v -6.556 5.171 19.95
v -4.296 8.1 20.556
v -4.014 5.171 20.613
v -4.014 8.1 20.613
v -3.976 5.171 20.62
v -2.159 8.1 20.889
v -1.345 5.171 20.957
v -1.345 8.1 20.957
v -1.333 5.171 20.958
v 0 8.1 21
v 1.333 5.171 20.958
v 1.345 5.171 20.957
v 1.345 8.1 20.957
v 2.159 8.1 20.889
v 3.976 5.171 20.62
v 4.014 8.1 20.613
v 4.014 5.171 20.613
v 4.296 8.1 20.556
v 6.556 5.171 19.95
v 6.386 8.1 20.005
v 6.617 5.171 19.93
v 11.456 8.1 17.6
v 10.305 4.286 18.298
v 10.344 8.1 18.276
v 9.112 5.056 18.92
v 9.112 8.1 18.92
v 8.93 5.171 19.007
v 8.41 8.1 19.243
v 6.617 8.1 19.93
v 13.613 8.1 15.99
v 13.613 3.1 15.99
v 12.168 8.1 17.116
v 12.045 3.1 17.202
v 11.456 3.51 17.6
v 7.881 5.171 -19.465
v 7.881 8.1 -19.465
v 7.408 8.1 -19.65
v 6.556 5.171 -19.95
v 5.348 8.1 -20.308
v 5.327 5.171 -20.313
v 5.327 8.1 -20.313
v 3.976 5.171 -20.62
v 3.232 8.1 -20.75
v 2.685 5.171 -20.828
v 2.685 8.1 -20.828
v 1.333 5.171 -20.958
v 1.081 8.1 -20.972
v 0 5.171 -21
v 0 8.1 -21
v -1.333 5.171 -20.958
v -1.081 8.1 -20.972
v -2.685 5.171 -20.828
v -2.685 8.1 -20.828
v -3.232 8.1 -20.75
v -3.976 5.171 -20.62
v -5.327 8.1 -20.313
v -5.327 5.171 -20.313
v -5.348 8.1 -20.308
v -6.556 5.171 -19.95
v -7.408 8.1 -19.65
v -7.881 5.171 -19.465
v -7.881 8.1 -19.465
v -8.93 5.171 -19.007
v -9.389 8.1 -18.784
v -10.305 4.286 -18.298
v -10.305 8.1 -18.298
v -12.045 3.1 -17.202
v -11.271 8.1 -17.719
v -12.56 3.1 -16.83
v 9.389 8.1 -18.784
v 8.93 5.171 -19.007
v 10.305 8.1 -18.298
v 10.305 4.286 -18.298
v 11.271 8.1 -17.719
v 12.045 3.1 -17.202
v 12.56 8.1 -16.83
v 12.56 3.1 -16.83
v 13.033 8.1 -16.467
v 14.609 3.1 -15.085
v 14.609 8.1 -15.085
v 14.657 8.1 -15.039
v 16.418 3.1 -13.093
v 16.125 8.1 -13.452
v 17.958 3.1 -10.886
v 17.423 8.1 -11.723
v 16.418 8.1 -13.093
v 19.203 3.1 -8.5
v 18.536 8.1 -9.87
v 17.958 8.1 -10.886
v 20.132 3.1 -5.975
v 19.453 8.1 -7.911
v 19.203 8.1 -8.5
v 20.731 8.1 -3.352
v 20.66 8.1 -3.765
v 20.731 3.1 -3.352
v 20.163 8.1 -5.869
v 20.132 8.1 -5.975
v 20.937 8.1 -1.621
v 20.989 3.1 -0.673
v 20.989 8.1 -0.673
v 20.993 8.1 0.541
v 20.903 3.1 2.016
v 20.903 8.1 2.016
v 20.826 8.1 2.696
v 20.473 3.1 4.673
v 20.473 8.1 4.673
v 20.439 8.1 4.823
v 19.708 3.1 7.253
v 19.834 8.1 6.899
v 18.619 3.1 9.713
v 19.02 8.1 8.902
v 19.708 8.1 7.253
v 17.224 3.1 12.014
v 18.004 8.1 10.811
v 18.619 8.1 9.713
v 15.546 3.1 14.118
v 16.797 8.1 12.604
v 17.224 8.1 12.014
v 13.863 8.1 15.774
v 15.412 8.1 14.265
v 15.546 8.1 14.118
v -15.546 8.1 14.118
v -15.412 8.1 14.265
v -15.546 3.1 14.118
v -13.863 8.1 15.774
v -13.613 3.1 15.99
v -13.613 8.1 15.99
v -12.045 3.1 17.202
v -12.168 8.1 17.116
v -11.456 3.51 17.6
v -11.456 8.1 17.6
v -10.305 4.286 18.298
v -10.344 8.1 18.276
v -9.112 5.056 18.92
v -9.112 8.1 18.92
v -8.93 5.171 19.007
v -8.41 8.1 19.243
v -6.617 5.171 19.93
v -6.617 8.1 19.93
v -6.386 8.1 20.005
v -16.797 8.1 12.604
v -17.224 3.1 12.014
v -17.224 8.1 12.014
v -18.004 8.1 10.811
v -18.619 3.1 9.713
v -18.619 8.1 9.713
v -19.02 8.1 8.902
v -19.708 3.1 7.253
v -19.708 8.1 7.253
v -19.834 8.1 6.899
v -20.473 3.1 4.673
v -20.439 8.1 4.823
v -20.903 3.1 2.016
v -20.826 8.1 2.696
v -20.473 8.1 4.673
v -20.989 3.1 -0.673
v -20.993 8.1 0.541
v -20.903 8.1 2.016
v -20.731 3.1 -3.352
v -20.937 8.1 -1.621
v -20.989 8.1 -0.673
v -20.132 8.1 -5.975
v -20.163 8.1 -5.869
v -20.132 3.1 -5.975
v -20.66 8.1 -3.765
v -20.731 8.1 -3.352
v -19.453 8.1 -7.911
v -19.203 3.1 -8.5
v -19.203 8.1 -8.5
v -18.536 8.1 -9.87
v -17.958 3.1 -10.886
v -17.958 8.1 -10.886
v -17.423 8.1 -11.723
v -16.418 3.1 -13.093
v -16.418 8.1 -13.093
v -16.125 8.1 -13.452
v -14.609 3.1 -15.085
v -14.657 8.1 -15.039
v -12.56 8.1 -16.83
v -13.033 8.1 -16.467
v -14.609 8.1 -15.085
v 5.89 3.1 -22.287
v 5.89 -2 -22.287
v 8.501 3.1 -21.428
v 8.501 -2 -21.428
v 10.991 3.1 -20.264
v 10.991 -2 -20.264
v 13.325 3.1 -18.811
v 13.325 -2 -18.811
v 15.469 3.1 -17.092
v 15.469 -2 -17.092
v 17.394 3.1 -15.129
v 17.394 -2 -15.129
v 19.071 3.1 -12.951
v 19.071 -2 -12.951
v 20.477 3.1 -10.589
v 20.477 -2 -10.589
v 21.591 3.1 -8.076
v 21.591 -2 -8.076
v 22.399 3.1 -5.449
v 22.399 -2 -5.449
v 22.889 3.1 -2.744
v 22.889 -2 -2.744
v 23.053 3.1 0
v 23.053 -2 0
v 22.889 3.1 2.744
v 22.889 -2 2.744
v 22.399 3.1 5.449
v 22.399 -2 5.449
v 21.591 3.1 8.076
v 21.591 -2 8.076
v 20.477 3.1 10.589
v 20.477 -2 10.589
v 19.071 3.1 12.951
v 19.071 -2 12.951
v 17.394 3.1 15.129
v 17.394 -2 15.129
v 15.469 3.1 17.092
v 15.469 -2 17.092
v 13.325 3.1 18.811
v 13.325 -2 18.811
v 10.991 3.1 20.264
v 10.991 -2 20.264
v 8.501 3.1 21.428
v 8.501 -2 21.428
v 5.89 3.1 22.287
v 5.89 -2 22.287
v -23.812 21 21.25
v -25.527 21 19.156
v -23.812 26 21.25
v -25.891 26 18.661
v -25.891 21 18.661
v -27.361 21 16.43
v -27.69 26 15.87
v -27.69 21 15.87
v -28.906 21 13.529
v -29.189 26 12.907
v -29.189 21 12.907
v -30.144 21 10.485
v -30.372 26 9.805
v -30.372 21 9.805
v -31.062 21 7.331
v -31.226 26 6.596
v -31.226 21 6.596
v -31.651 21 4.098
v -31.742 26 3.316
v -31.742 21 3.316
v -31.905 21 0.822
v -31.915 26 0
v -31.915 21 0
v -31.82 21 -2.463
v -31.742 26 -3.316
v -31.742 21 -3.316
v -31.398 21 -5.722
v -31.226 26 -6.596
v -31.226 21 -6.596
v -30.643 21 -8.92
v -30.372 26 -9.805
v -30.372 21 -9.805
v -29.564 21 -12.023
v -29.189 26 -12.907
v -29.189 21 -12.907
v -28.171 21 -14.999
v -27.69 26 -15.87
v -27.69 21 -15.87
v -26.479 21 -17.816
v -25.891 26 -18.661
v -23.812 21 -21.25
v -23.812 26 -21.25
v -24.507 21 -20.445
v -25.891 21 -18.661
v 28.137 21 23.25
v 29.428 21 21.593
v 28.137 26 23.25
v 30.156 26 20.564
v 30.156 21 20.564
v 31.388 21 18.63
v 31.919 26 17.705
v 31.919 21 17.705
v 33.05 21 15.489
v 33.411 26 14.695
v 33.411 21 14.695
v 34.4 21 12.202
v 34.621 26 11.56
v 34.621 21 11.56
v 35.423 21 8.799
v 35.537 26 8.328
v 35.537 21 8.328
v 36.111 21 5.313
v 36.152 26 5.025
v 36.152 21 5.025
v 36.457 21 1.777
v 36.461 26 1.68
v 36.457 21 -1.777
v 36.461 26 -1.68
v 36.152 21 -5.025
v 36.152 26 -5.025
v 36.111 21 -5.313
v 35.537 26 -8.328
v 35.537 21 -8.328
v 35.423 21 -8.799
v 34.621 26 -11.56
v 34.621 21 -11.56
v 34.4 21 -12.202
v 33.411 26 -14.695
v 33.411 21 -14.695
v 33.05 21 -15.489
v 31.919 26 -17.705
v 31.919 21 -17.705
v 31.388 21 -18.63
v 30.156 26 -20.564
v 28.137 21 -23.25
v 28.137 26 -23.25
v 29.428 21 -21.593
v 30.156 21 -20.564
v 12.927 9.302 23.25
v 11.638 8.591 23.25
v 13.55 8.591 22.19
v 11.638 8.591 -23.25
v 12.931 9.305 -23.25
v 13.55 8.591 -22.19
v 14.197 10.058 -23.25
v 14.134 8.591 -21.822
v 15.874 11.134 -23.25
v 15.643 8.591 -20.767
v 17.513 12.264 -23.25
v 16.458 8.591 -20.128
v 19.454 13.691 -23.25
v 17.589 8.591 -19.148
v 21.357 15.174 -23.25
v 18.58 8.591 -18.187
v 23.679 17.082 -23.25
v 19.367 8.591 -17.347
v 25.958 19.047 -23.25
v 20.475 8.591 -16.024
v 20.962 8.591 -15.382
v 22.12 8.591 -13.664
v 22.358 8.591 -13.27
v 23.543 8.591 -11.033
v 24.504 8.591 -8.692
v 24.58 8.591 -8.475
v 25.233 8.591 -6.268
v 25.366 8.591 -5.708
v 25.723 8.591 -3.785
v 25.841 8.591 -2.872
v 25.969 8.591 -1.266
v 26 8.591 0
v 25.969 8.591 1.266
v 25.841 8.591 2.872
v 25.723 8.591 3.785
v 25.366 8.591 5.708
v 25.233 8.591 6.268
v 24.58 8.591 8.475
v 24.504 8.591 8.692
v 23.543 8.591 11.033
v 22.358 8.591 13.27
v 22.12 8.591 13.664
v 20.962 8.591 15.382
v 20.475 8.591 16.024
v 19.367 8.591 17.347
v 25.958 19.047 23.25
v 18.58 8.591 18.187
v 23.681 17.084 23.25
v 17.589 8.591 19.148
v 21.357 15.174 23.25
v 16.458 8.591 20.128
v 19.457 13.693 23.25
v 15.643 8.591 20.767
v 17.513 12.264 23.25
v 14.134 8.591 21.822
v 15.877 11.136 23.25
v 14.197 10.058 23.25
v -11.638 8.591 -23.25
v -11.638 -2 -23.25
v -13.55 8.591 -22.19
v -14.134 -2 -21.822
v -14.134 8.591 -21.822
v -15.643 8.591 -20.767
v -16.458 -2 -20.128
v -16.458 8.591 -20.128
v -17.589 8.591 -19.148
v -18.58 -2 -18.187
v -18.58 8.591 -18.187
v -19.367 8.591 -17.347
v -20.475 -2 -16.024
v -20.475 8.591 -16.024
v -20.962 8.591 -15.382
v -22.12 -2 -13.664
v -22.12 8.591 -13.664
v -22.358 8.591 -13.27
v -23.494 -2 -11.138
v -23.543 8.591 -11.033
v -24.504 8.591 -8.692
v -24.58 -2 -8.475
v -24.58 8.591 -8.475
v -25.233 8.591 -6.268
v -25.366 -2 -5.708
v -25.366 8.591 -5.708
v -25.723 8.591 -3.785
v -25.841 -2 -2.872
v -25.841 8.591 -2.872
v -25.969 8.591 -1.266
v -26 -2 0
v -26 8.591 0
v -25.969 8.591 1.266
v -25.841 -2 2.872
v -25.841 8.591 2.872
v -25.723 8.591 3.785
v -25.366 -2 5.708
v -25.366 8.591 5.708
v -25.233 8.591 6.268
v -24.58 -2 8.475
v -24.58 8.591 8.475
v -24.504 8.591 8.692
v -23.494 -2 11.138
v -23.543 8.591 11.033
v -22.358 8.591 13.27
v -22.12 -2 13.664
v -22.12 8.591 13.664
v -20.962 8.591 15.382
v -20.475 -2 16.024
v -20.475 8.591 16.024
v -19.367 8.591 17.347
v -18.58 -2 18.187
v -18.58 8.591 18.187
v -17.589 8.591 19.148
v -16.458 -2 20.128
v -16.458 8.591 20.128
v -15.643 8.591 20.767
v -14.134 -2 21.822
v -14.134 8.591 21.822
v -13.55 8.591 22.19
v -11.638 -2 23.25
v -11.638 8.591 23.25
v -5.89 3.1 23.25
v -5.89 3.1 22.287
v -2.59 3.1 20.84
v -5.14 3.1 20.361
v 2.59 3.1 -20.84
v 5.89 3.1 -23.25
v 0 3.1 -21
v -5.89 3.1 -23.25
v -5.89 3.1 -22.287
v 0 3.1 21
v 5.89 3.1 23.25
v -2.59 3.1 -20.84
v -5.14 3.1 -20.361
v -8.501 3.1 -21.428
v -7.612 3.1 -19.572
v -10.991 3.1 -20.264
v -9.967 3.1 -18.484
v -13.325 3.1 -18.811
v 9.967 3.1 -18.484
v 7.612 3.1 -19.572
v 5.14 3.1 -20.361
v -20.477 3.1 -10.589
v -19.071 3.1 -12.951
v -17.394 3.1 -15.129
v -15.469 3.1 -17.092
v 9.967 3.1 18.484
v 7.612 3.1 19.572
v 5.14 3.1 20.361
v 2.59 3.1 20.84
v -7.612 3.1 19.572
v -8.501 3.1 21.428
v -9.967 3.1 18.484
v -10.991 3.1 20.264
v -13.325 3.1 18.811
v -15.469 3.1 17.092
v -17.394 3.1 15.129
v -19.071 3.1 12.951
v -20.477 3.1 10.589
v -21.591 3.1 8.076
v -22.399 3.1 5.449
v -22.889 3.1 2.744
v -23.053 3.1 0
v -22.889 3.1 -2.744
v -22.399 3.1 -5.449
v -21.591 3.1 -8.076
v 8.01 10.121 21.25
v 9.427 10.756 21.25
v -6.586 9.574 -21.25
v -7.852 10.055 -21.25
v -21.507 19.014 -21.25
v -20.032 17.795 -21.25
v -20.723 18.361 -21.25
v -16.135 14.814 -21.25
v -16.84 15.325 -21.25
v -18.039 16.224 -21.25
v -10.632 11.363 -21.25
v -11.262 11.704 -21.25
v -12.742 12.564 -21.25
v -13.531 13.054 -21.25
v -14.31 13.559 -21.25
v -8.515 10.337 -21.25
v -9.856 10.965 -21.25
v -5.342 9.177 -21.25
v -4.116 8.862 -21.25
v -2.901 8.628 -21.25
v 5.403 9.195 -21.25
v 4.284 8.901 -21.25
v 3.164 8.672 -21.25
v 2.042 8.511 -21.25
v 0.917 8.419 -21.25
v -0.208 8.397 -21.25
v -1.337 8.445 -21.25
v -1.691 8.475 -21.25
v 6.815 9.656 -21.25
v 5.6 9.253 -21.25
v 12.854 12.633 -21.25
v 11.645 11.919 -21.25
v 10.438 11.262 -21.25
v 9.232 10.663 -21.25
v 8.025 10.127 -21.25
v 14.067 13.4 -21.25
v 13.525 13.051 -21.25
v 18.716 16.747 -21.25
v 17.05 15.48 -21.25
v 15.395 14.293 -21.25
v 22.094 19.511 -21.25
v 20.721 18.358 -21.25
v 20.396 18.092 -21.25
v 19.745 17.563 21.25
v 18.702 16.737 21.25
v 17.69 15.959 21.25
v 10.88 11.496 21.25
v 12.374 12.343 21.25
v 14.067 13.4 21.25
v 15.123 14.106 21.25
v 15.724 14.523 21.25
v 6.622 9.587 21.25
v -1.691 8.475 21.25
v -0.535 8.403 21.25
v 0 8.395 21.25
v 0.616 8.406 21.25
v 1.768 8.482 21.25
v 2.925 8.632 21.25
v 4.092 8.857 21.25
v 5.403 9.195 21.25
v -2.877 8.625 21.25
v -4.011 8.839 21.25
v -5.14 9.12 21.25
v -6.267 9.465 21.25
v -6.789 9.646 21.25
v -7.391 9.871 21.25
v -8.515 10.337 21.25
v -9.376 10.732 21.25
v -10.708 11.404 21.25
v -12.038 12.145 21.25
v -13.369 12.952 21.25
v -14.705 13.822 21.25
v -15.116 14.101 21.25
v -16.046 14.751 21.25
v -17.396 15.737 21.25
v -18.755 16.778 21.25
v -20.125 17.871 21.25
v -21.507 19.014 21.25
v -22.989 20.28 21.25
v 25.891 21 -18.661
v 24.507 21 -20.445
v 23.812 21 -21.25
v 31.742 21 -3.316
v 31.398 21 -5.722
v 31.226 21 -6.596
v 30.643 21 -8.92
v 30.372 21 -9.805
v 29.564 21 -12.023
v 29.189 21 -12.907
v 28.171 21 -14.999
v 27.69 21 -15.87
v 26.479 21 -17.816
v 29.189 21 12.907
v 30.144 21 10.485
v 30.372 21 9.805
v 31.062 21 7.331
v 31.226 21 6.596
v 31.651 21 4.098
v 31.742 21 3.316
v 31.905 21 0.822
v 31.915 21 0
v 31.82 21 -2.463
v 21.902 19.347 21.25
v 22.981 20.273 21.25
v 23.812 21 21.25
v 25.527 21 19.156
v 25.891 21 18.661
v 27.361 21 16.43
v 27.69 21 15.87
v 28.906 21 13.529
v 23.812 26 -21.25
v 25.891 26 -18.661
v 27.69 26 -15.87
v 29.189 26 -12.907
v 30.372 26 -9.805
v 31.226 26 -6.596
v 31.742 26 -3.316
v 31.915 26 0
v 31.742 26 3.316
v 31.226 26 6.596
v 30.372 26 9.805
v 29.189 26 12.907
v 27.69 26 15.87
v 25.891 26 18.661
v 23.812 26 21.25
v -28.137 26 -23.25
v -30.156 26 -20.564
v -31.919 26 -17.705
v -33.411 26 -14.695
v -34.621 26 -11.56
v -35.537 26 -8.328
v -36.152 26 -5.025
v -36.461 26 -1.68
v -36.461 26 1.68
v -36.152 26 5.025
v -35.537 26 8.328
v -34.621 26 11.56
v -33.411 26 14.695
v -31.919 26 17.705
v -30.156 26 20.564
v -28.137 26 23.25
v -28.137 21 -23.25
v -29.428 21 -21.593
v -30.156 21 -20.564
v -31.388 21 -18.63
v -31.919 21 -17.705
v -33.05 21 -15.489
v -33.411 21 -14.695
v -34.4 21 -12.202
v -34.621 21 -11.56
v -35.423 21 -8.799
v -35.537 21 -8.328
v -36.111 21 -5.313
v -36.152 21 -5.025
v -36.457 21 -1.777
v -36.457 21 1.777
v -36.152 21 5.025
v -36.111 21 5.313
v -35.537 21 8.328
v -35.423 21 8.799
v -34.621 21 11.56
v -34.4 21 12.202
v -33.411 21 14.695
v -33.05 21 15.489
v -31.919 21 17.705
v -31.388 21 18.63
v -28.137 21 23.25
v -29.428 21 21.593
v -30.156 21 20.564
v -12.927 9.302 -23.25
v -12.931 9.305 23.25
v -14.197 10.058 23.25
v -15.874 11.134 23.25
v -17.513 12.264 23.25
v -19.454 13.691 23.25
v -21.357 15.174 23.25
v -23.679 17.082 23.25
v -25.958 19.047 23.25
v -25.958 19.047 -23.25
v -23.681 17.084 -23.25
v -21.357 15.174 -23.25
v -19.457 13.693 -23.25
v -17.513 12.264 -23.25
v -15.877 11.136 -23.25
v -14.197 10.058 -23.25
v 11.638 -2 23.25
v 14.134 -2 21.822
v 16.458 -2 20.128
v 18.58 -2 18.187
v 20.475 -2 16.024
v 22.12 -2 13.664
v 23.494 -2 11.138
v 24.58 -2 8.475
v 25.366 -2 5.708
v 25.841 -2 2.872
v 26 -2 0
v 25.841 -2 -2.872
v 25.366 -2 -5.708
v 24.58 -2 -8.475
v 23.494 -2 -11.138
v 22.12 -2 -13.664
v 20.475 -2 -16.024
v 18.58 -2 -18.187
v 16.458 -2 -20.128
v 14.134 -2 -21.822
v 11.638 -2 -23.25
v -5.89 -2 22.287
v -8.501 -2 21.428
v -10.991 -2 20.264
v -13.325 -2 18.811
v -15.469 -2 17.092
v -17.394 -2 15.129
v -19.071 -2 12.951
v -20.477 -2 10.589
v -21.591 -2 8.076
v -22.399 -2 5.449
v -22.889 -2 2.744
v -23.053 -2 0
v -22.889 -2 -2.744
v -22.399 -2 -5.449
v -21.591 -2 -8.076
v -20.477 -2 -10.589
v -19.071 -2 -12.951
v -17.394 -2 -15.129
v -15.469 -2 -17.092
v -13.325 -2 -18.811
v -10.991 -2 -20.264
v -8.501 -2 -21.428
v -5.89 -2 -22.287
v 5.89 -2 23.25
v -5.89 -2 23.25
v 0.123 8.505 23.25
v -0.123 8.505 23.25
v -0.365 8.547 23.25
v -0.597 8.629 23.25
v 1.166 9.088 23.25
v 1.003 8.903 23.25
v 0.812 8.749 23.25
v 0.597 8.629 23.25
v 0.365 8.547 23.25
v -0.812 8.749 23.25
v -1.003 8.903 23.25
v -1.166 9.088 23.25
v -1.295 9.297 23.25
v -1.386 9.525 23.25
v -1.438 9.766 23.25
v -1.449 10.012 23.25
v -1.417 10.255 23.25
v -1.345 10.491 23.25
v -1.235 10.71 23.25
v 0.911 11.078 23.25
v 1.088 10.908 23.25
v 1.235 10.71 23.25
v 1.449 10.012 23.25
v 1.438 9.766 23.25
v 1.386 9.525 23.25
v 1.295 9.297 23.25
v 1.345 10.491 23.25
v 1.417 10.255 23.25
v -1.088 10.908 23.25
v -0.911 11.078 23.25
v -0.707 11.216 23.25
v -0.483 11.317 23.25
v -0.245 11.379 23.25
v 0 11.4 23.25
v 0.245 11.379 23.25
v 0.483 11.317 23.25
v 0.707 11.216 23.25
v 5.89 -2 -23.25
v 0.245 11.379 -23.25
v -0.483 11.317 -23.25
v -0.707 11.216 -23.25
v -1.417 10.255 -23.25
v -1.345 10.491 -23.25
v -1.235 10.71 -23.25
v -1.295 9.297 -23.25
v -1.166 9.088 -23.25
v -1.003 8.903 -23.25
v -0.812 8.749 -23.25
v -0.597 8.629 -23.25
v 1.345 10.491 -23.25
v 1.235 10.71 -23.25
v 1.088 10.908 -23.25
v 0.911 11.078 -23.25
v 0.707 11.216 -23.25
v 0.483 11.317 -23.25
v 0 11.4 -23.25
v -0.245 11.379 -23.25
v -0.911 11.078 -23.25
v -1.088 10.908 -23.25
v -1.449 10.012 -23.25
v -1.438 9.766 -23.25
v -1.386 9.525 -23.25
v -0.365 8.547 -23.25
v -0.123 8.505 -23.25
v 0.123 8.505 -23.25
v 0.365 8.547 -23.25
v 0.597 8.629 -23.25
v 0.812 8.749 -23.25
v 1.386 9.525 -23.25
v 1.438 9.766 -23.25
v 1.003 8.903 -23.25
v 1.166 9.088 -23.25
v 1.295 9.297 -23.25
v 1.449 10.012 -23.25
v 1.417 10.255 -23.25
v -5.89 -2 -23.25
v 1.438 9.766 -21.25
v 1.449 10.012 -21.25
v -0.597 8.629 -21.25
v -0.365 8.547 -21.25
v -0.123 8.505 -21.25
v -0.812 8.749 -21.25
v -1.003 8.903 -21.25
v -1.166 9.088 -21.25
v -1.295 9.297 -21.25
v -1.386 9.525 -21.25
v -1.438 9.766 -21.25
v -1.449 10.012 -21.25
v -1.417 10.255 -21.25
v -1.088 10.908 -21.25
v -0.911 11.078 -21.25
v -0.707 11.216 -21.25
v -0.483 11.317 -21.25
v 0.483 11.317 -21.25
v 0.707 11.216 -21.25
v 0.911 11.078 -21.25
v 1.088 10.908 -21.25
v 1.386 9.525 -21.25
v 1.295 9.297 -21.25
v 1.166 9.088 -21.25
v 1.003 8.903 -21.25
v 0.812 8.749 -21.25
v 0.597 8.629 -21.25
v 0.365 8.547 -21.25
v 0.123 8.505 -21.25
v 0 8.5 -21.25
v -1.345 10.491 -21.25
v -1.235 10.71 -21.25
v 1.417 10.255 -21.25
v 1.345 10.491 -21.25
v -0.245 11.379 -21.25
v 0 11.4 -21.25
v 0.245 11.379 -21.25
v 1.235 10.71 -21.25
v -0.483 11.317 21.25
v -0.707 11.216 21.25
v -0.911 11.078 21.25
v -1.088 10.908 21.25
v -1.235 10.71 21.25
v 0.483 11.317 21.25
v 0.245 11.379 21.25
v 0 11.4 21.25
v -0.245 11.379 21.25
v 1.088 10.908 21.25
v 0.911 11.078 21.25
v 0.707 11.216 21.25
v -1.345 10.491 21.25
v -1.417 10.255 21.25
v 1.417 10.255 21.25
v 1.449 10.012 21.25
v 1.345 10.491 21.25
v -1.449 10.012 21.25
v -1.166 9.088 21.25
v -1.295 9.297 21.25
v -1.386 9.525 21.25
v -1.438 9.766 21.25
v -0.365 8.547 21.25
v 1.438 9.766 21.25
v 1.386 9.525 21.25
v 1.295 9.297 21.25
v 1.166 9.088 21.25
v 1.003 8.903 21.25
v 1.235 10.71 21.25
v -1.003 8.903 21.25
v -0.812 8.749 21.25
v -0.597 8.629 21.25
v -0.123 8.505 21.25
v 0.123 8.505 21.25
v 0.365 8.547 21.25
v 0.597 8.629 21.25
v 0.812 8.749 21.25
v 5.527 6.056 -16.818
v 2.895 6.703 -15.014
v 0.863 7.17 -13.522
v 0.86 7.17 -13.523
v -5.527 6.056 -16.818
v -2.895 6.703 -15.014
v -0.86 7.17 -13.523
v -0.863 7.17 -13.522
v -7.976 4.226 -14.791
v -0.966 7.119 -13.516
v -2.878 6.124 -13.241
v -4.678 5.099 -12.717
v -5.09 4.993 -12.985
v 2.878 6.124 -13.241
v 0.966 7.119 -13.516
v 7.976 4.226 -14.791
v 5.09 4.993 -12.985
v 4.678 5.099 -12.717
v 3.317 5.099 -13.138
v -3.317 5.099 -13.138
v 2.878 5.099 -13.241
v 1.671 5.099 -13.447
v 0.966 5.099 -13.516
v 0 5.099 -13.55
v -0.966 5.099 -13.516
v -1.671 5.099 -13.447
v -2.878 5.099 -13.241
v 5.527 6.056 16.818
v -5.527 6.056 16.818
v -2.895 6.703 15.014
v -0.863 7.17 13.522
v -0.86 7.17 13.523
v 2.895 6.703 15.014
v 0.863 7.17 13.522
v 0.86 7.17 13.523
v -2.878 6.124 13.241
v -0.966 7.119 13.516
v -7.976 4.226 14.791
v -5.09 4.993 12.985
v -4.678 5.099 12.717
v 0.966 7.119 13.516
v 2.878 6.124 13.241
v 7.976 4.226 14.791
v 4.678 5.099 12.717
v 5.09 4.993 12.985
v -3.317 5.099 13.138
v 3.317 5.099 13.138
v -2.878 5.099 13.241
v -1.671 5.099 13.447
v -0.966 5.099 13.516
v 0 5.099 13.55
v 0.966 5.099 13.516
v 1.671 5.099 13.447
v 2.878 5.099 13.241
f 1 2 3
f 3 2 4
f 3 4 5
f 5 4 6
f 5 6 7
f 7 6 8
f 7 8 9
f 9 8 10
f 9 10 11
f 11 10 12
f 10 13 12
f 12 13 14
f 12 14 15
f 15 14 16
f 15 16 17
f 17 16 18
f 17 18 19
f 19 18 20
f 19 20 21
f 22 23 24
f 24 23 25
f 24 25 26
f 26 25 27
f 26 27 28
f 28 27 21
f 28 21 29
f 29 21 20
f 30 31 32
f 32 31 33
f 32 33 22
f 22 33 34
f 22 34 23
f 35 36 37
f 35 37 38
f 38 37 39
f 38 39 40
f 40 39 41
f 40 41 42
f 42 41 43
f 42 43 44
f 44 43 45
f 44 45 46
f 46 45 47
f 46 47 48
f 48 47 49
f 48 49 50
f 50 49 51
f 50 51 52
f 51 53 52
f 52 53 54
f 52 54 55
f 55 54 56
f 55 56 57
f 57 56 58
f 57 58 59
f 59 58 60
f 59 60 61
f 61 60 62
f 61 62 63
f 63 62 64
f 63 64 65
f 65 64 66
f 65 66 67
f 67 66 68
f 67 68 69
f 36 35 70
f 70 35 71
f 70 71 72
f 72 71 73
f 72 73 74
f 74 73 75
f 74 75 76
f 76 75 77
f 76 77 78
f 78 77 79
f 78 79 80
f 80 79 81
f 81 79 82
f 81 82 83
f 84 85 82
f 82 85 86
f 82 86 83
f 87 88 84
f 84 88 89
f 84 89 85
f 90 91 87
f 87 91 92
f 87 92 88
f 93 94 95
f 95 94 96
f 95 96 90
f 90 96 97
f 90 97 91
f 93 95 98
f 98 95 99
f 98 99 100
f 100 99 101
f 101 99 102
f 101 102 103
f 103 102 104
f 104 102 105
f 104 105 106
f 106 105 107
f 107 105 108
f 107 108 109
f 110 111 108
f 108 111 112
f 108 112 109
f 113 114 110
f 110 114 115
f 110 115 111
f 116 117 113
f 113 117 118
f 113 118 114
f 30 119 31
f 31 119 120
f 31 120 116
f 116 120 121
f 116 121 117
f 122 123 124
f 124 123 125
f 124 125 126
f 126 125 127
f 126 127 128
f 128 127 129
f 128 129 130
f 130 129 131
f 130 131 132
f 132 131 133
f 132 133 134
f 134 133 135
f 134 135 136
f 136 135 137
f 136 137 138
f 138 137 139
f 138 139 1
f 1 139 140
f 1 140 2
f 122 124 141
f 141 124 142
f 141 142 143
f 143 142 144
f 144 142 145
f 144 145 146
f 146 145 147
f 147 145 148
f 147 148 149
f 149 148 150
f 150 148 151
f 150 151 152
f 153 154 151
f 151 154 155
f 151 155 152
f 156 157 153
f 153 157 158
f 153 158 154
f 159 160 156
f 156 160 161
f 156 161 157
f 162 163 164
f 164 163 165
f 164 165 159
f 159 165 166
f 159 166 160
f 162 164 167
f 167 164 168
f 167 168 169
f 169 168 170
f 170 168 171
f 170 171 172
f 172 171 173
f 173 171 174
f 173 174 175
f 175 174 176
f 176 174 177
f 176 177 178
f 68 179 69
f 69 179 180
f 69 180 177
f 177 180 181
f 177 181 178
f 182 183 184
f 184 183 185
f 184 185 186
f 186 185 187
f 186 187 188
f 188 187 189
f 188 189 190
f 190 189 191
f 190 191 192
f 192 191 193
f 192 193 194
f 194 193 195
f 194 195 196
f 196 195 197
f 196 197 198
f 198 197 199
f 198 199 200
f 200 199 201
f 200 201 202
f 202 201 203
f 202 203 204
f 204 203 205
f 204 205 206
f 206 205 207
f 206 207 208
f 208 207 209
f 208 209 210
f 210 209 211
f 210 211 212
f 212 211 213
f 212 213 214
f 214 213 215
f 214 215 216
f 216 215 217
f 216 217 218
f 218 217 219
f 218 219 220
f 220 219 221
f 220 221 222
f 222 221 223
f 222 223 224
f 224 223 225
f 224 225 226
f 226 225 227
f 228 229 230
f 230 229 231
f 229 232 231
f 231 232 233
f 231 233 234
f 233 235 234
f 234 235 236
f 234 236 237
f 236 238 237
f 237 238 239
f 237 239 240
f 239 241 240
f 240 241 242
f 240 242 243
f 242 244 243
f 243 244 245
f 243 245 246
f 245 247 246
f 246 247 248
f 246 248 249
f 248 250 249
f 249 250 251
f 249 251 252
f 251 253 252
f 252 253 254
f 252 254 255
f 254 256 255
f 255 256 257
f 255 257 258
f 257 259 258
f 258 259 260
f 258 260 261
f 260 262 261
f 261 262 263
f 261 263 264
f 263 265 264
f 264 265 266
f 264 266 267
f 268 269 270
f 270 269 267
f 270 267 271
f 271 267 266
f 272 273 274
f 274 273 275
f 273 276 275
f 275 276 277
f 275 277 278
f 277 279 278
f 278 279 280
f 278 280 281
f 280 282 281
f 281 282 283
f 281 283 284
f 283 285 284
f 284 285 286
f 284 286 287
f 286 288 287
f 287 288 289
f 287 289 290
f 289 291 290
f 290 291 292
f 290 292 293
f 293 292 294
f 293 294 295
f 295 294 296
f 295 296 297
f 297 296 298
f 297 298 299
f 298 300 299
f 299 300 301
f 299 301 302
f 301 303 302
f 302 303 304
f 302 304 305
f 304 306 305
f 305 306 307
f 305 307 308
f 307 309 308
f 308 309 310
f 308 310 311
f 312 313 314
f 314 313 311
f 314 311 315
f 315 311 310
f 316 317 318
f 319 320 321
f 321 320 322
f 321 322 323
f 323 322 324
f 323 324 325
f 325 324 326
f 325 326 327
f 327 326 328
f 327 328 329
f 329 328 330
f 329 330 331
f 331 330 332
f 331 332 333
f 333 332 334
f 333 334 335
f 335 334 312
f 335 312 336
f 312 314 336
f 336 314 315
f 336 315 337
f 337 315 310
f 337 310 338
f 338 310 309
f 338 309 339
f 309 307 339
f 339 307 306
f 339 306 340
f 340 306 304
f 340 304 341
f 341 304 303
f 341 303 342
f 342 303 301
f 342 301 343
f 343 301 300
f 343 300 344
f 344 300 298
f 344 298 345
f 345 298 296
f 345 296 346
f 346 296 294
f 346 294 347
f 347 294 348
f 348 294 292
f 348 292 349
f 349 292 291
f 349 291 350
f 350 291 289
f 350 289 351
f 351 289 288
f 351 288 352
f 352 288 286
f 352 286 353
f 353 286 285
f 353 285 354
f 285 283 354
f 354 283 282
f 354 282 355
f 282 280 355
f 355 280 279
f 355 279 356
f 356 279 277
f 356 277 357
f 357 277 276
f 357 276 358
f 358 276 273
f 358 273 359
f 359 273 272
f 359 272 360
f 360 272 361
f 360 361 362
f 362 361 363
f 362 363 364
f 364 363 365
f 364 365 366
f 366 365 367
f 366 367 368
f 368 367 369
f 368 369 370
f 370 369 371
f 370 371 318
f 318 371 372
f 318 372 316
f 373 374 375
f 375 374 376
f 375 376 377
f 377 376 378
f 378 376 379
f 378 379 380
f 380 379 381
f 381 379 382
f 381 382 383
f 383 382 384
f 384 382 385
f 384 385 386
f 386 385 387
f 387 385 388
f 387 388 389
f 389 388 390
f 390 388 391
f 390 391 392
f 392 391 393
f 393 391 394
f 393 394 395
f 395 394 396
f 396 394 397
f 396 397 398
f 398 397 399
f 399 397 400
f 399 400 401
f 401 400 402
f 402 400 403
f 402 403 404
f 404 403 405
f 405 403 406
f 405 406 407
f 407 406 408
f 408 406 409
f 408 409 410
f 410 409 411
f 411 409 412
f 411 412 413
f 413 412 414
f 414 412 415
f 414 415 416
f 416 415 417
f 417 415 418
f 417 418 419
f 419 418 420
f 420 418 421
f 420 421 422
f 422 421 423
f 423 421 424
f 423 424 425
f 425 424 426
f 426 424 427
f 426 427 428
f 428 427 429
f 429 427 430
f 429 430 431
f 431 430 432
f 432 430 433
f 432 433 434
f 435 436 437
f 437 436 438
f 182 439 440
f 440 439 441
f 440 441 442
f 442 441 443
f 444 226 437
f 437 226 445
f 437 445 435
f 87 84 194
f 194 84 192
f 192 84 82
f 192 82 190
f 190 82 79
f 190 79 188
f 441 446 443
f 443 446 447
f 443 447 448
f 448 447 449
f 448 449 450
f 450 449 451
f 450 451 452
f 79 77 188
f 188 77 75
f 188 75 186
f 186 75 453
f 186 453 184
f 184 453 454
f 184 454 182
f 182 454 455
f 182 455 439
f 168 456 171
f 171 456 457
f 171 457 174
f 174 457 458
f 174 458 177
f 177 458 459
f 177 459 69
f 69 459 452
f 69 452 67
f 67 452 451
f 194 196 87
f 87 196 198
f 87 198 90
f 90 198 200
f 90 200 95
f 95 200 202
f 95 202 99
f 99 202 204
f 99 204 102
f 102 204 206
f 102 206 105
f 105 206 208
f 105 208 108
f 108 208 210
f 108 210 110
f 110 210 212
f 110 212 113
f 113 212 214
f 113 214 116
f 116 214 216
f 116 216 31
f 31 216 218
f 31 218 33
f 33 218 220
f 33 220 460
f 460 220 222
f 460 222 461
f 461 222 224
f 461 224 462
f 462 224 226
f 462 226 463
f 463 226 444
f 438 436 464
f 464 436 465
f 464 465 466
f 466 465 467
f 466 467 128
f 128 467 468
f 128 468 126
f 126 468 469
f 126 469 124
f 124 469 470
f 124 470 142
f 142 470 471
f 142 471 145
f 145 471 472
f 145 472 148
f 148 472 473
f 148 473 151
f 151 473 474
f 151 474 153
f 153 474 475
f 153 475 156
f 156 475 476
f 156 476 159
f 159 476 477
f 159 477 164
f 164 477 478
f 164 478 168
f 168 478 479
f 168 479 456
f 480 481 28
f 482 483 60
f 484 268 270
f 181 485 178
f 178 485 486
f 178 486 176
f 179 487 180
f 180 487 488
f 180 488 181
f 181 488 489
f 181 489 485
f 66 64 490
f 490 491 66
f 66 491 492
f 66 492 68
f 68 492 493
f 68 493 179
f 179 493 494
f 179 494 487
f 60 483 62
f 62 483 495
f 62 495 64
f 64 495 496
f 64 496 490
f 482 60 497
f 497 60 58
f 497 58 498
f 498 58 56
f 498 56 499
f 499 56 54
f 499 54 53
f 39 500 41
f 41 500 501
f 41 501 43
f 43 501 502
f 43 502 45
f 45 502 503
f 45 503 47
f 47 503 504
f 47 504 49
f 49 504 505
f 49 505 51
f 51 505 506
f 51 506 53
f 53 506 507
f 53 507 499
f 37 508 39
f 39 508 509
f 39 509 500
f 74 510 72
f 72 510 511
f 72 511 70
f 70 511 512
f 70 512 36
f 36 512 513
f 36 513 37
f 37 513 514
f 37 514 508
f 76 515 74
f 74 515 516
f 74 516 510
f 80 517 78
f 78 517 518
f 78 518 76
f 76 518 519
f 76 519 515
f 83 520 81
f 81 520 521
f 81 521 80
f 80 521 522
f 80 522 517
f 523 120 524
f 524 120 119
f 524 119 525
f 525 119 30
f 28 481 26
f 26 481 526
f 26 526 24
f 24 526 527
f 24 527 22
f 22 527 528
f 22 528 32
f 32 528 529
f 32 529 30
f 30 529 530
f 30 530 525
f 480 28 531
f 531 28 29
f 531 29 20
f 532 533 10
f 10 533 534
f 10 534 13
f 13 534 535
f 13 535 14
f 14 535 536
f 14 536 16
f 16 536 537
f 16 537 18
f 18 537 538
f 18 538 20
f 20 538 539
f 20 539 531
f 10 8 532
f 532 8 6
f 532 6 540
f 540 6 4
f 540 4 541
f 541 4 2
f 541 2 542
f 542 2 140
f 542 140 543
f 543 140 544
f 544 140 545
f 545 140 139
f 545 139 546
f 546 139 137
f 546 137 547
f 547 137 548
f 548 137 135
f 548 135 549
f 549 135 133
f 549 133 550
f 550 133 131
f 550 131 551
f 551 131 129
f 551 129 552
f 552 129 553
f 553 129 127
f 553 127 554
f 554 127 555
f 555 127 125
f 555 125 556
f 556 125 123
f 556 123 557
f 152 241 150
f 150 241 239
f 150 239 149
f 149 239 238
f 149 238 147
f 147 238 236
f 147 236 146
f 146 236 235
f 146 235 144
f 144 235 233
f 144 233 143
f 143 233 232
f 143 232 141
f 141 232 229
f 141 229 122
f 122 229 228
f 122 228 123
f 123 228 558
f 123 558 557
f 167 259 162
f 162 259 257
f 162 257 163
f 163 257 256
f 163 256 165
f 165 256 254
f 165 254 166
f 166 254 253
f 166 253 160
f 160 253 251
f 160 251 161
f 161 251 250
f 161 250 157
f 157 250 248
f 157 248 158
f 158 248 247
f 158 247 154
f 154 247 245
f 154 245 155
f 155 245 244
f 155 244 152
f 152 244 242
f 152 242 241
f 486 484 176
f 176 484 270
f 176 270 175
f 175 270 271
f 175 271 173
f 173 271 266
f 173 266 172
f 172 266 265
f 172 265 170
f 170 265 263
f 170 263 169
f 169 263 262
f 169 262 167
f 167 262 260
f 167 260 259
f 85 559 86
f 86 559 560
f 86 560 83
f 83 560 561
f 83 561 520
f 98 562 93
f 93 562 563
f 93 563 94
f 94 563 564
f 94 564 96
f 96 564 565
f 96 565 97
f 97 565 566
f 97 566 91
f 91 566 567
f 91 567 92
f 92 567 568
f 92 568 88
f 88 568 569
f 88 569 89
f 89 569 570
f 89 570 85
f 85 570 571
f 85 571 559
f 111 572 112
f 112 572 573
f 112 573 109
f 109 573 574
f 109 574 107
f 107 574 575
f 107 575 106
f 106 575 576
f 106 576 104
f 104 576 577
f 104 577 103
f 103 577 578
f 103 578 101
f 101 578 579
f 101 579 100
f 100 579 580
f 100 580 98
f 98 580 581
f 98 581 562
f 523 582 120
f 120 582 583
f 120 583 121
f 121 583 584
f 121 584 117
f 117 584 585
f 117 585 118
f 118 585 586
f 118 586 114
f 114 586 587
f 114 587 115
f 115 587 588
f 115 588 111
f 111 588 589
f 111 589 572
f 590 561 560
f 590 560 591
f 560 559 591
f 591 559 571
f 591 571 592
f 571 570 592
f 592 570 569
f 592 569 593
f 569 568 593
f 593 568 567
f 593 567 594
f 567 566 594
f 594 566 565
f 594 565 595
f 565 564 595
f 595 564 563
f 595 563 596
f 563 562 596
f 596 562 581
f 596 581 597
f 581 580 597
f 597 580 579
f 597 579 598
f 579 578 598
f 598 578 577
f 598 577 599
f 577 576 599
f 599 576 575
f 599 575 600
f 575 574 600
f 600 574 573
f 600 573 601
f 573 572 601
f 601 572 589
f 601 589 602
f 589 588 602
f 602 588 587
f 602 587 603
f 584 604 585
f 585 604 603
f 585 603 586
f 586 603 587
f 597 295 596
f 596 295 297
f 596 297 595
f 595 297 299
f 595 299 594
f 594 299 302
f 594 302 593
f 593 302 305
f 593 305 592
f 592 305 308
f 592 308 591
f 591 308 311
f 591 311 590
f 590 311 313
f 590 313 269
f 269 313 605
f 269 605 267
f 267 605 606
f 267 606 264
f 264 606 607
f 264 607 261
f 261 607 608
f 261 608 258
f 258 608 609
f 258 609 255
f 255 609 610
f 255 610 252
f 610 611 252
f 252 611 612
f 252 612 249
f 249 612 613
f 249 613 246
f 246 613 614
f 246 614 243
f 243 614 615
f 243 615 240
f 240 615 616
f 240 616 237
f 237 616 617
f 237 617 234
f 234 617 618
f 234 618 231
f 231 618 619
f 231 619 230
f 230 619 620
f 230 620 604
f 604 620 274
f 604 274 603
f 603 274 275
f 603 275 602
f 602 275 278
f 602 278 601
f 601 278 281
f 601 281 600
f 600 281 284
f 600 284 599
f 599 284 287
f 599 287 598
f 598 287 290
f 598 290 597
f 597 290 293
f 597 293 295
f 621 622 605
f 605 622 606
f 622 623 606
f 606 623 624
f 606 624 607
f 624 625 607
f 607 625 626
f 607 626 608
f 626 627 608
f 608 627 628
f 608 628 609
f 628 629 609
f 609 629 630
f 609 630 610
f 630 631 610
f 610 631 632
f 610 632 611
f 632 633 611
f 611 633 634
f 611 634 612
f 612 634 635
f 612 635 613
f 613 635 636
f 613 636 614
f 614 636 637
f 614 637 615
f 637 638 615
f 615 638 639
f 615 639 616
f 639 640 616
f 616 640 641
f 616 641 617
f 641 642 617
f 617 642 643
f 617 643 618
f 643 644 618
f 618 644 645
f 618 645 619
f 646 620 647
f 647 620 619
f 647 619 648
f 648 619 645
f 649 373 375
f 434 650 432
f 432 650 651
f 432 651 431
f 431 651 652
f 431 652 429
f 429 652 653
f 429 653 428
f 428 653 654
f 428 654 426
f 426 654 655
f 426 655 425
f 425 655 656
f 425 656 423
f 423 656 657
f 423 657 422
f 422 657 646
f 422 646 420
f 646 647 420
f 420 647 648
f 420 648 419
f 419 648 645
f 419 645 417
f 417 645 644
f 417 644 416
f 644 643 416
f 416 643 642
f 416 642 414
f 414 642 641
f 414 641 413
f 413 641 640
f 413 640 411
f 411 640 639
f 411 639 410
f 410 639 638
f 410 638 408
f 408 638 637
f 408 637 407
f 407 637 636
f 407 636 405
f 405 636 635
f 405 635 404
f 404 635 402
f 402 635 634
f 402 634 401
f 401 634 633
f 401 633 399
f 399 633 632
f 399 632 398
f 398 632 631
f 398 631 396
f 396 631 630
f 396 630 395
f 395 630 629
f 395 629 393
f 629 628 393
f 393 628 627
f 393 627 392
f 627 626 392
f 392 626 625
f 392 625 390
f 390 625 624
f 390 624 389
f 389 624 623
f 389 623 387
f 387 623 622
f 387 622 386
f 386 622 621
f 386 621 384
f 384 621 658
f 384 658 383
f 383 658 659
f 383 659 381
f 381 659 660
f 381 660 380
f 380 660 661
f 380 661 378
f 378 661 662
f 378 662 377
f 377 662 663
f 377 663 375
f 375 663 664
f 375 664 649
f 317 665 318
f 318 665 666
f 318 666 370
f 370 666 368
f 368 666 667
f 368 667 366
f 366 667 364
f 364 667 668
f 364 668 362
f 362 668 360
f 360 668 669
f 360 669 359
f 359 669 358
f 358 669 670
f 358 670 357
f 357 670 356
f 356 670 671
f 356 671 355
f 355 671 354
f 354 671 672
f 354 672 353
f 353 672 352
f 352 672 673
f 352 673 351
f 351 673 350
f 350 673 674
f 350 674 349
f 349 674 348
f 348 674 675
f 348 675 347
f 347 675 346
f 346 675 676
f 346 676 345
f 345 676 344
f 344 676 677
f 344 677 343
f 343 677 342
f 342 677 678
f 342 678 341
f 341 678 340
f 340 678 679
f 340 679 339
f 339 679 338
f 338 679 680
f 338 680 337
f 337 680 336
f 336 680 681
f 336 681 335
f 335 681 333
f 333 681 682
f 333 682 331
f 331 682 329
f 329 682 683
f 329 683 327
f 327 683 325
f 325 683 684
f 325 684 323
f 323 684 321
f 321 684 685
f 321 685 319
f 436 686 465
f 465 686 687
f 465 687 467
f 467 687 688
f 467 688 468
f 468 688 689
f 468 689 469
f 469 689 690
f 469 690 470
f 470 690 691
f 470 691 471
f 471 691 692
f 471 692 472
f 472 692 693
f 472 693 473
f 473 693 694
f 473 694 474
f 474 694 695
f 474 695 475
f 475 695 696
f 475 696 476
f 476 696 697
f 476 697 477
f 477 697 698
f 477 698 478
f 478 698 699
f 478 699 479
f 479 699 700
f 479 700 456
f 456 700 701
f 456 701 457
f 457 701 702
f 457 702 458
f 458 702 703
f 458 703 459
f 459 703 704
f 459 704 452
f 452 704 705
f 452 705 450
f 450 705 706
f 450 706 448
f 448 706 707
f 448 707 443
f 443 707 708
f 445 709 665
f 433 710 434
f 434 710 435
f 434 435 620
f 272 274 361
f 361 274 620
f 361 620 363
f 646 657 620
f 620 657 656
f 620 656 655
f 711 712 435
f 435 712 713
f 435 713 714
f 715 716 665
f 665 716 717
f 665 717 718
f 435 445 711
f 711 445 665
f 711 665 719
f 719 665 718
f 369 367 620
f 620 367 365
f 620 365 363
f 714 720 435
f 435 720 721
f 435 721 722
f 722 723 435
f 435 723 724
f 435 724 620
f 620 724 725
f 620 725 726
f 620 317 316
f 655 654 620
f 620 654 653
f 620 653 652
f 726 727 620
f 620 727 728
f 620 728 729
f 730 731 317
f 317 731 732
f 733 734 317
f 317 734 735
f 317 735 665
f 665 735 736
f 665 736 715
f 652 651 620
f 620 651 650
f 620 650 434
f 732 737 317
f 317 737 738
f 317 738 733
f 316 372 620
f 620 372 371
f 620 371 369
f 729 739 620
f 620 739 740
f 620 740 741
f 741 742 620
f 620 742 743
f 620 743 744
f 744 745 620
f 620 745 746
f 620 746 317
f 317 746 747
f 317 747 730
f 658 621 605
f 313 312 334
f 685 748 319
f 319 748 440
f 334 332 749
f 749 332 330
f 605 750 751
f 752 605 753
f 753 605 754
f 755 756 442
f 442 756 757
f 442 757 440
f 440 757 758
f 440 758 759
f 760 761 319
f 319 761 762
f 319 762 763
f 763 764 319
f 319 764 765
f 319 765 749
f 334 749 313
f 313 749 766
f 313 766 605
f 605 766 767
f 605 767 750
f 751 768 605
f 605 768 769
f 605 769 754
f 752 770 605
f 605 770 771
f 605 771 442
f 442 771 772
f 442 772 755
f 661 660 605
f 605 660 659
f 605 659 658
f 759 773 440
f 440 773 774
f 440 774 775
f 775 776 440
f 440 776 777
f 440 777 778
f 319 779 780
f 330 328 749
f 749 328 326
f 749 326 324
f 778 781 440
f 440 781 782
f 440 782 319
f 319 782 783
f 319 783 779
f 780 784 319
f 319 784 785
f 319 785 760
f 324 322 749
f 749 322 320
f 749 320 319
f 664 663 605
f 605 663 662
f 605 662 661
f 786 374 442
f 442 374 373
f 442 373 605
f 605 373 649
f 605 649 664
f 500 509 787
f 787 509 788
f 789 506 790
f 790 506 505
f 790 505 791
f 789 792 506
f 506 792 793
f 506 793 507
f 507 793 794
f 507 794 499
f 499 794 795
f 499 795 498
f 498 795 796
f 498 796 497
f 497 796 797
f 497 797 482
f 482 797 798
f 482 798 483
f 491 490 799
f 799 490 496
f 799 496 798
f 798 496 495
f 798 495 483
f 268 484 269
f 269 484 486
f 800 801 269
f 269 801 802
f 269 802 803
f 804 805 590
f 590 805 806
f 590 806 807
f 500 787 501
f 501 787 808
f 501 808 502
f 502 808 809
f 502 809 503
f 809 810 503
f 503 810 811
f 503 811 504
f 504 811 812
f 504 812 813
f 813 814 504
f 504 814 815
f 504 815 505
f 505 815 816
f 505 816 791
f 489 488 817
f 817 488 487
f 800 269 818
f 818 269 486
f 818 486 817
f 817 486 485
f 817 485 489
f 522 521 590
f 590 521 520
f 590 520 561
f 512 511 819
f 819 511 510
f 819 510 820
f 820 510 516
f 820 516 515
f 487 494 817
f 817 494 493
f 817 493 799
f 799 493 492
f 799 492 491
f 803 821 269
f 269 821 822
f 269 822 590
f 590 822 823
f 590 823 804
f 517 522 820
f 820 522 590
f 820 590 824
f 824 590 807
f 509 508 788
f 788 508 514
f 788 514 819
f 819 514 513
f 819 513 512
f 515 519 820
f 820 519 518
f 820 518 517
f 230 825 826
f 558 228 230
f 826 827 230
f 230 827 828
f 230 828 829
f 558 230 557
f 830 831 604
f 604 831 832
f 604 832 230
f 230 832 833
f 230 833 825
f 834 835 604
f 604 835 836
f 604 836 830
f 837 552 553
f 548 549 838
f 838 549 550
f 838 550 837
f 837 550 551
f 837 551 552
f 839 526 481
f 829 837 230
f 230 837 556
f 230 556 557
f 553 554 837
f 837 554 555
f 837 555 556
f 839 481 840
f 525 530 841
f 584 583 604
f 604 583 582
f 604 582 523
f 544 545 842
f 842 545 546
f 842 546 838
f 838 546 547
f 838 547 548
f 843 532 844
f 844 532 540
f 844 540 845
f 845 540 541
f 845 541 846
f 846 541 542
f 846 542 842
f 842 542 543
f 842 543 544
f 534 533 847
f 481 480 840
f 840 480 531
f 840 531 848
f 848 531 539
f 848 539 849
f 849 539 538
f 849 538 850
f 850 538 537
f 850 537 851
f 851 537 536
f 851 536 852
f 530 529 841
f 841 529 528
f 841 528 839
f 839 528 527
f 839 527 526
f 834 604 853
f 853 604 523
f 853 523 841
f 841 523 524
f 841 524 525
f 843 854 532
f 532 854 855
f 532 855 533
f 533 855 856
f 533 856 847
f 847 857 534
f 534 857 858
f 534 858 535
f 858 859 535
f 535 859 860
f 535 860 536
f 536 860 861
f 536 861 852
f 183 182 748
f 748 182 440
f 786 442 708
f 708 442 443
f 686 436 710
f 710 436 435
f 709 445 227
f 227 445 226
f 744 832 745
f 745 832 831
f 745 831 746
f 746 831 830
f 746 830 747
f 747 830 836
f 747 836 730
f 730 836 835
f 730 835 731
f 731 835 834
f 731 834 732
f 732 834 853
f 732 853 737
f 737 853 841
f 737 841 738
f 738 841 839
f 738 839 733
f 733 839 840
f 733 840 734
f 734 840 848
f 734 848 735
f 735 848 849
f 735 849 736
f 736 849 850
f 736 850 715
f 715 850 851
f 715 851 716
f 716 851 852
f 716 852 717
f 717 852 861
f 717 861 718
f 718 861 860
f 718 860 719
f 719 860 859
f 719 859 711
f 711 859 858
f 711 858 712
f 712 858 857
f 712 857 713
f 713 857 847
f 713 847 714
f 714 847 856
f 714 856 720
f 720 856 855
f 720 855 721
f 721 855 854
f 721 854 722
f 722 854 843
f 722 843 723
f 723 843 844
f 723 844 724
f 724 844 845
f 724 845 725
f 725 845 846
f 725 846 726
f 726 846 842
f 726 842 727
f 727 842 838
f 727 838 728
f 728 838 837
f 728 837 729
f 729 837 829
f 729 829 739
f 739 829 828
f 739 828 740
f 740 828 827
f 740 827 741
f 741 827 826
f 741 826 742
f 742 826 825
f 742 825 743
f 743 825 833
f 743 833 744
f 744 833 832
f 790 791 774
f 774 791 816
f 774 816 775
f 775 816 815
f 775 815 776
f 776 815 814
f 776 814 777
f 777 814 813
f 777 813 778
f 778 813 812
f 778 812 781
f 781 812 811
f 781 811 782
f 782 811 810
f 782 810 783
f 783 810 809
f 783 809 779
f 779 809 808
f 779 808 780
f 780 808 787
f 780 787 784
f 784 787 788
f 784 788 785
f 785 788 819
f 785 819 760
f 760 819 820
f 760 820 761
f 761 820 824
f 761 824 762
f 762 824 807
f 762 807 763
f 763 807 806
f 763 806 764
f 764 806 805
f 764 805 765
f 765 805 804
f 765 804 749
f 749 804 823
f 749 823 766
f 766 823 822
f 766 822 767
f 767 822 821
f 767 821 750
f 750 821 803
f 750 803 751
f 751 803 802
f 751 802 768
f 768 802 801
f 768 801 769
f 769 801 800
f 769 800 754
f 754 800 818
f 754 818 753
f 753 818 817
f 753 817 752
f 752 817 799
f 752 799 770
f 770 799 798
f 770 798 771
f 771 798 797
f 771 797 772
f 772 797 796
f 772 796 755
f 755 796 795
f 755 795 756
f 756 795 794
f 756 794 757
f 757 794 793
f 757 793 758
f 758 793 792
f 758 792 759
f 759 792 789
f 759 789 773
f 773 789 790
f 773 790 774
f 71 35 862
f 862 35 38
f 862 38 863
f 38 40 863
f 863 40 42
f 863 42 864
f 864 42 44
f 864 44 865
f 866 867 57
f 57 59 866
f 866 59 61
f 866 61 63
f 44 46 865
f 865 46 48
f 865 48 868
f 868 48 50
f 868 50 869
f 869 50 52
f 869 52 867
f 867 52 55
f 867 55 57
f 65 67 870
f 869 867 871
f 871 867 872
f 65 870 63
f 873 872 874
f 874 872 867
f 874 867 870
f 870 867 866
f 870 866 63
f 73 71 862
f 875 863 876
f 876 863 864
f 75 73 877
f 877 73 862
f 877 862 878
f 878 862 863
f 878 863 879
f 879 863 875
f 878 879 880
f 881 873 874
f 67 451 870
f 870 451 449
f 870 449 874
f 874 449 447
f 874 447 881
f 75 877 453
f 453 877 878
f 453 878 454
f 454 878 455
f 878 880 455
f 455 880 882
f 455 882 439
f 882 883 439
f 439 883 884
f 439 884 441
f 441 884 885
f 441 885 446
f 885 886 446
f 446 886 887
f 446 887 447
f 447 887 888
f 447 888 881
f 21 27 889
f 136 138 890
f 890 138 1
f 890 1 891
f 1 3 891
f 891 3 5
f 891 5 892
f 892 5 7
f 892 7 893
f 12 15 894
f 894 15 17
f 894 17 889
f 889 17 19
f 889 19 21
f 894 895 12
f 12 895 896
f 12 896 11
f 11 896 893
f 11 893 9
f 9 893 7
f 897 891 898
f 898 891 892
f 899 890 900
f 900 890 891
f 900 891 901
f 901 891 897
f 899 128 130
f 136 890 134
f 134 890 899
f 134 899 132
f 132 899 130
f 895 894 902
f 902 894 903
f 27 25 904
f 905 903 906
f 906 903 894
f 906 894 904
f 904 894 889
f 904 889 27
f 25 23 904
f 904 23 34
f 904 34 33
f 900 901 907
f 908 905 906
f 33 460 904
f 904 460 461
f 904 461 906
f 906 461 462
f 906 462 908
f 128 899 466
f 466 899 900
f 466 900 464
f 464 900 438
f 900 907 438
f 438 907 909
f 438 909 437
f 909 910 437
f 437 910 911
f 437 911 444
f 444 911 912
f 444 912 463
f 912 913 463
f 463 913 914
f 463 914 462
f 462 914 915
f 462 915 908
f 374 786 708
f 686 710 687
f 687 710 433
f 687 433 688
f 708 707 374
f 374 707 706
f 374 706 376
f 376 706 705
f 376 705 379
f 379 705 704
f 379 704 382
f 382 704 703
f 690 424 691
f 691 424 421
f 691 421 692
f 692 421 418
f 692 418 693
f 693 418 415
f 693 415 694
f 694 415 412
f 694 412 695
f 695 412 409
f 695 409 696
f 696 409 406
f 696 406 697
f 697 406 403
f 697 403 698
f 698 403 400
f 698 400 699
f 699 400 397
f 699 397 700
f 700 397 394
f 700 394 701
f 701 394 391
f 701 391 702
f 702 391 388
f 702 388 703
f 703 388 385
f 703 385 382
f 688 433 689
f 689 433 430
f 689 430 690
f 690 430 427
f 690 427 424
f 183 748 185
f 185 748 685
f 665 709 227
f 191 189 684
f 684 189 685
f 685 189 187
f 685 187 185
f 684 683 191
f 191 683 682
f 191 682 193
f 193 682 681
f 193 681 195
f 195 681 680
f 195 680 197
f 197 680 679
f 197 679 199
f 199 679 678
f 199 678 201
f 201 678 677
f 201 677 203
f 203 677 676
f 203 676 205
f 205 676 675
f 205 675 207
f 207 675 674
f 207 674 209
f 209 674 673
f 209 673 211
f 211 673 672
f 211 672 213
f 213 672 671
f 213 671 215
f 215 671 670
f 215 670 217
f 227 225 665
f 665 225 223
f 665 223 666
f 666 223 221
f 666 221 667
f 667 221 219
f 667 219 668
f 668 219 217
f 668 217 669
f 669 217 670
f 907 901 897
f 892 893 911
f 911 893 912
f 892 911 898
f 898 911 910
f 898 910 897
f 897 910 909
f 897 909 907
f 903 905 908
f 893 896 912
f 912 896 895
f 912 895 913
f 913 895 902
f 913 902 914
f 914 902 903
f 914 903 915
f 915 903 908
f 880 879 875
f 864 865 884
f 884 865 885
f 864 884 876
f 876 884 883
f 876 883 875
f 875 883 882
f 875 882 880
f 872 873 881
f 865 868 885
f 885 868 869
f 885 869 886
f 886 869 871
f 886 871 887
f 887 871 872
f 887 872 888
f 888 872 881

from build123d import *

# Parameters (mm, degrees)
SKETCH2_W           = 56.273883818
SKETCH2_H           = 13.25
CUT_EXTRUDE1_DEPTH  = 58.797058749
BOSS_EXTRUDE2_REACH = 52.486
SKETCH6_W           = 56.273883818
SKETCH6_H           = 2
SKETCH3_W           = 11.78
SKETCH3_H           = 0.962657039
CUT_EXTRUDE2_DEPTH  = 3.1
SKETCH7_R           = 1.45
CUT_EXTRUDE3_DEPTH  = 65.579408483
REVOLVE2_ANGLE      = 70
BOSS_EXTRUDE5_DEPTH = 2
SKETCH16_R          = 13.55
CUT_EXTRUDE6_DEPTH  = 49.961438909
DRAFT11_ANGLE       = -60


with BuildPart() as part:
    # Sketch1 → Revolve1 (revolve)
    with BuildSketch(Plane(origin=(0, 0, 0), x_dir=(0, 0, -1), z_dir=(1, 0, 0)), mode=Mode.PRIVATE) as revolve1_sk:
        Polygon((-26, 0), (-26, 8.590696852), (-36.5, 21), (-36.5, 26), (-31.915197927, 26), (-31.915197927, 21), (-21, 8.1), (-21, 3.1), (-23.0525, 3.1), (-23.0525, 0), align=None)
    revolve(revolve1_sk.sketch.rotate(Axis((0, 0, 0), (0, 1, 0)), 180), axis=Axis((0, 0, 0), (0, 1, 0)))

    # Sketch2 → Cut-Extrude1 (cut, through all)
    with BuildSketch(Plane.XZ):
        with Locations((0, -29.875)):
            Rectangle(SKETCH2_W, SKETCH2_H)
        with Locations((0, 29.875)):
            Rectangle(SKETCH2_W, SKETCH2_H)
    extrude(amount=-CUT_EXTRUDE1_DEPTH, mode=Mode.SUBTRACT)

    # Boss-Extrude2: up to this cone (the profile starts inside it)
    boss_extrude2_end = Plane(origin=(0, 26, 0), z_dir=(0, 1, 0)).offset(-42.718605296) * Cone(1e-06, 111.563900484, 131.850500094, align=(Align.CENTER, Align.CENTER, Align.MIN), mode=Mode.PRIVATE)
    # Sketch6 → Boss-Extrude2 (add, up to the surface)
    with BuildSketch(Plane(origin=(0, 26, 0), x_dir=(1, 0, 0), z_dir=(0, 1, 0)), mode=Mode.PRIVATE) as boss_extrude2_sk1:
        with Locations((0, 22.25)):
            Rectangle(SKETCH6_W, SKETCH6_H)
    boss_extrude2_tool1 = extrude(boss_extrude2_sk1.sketch, amount=-BOSS_EXTRUDE2_REACH, mode=Mode.PRIVATE) & boss_extrude2_end
    add(boss_extrude2_tool1.solids().sort_by_distance((0, 26, -22.25))[0])
    # Sketch6 → Boss-Extrude2 (add, up to the surface)
    with BuildSketch(Plane(origin=(0, 26, 0), x_dir=(1, 0, 0), z_dir=(0, 1, 0)), mode=Mode.PRIVATE) as boss_extrude2_sk2:
        with Locations((0, -22.25)):
            Rectangle(SKETCH6_W, SKETCH6_H)
    boss_extrude2_tool2 = extrude(boss_extrude2_sk2.sketch, amount=-BOSS_EXTRUDE2_REACH, mode=Mode.PRIVATE) & boss_extrude2_end
    add(boss_extrude2_tool2.solids().sort_by_distance((0, 26, 22.25))[0])

    # Sketch3 → Cut-Extrude2 (cut)
    with BuildSketch(Plane.XZ):
        with Locations((0, -22.768671481)):
            Rectangle(SKETCH3_W, SKETCH3_H)
        with Locations((0, 22.768671481)):
            Rectangle(SKETCH3_W, SKETCH3_H)
    extrude(amount=-CUT_EXTRUDE2_DEPTH, mode=Mode.SUBTRACT)

    # Sketch7 → Cut-Extrude3 (cut, through all)
    with BuildSketch(Plane(origin=(0, 0, -23.25), x_dir=(-1, 0, 0), z_dir=(0, 0, -1))):
        with Locations(Location((0, 9.95, 0), (0, 0, 90))):
            Circle(SKETCH7_R)
    extrude(amount=-CUT_EXTRUDE3_DEPTH, mode=Mode.SUBTRACT)

    # Sketch9 → Revolve2 (revolve, symmetric)
    with BuildSketch(Plane(origin=(0, 0, 0), x_dir=(0, 0, -1), z_dir=(1, 0, 0))) as revolve2_sk:
        Polygon((21.518312402, 5.031670845), (21, 3.1), (10.375810352, 5.950718212), (10.894122754, 7.882389057), align=None)
    revolve2 = revolve(axis=Axis((0, 0, 0), (0, 1, 0)), revolution_arc=REVOLVE2_ANGLE / 2)
    revolve2 = revolve2 + revolve(revolve2_sk.sketch, axis=Axis((0, 0, 0), (0, -1, 0)), revolution_arc=REVOLVE2_ANGLE / 2)

    # Mirror3: Revolve2 across plane
    add(revolve2.mirror(Plane.XY))

    # Sketch13 → Boss-Extrude5 (add)
    with BuildSketch(Plane.XZ):
        with BuildLine():
            Line((-5.89, -23.25), (-5.89, -22.287342961))
            ThreePointArc((-5.89, -22.287342961), (-23.0525, 0), (-5.89, 22.287342961))
            Line((-5.89, 22.287342961), (-5.89, 23.25))
            Line((-5.89, 23.25), (-11.637761812, 23.25))
            ThreePointArc((-11.637761812, 23.25), (-26, 0), (-11.637761812, -23.25))
            Line((-11.637761812, -23.25), (-5.89, -23.25))
        make_face()
        with BuildLine():
            Line((5.89, -22.287342961), (5.89, -23.25))
            Line((5.89, -23.25), (11.637761812, -23.25))
            ThreePointArc((11.637761812, -23.25), (26, 0), (11.637761812, 23.25))
            Line((11.637761812, 23.25), (5.89, 23.25))
            Line((5.89, 23.25), (5.89, 22.287342961))
            ThreePointArc((5.89, 22.287342961), (23.0525, 0), (5.89, -22.287342961))
        make_face()
    extrude(amount=BOSS_EXTRUDE5_DEPTH)

    # Sketch16 → Cut-Extrude6 (cut, through all)
    with BuildSketch(Plane.XZ.offset(-3.1)):
        Circle(SKETCH16_R)
    extrude(amount=-CUT_EXTRUDE6_DEPTH, mode=Mode.SUBTRACT)

    # Draft11
    draft11_faces = [part.faces().sort_by_distance(p)[0] for p in [
        (9.908532938, 5.134877582, 14.150851565),
        (-9.908532938, 5.134877582, 14.150851565),
        (9.908532938, 5.134877582, -14.150851565),
        (-9.908532938, 5.134877582, -14.150851565),
    ]]
    draft(draft11_faces, Plane(origin=(0, 3.1, 0), x_dir=(0, 0, -1), z_dir=(0, -1, 0)), DRAFT11_ANGLE)


solid = part.part
